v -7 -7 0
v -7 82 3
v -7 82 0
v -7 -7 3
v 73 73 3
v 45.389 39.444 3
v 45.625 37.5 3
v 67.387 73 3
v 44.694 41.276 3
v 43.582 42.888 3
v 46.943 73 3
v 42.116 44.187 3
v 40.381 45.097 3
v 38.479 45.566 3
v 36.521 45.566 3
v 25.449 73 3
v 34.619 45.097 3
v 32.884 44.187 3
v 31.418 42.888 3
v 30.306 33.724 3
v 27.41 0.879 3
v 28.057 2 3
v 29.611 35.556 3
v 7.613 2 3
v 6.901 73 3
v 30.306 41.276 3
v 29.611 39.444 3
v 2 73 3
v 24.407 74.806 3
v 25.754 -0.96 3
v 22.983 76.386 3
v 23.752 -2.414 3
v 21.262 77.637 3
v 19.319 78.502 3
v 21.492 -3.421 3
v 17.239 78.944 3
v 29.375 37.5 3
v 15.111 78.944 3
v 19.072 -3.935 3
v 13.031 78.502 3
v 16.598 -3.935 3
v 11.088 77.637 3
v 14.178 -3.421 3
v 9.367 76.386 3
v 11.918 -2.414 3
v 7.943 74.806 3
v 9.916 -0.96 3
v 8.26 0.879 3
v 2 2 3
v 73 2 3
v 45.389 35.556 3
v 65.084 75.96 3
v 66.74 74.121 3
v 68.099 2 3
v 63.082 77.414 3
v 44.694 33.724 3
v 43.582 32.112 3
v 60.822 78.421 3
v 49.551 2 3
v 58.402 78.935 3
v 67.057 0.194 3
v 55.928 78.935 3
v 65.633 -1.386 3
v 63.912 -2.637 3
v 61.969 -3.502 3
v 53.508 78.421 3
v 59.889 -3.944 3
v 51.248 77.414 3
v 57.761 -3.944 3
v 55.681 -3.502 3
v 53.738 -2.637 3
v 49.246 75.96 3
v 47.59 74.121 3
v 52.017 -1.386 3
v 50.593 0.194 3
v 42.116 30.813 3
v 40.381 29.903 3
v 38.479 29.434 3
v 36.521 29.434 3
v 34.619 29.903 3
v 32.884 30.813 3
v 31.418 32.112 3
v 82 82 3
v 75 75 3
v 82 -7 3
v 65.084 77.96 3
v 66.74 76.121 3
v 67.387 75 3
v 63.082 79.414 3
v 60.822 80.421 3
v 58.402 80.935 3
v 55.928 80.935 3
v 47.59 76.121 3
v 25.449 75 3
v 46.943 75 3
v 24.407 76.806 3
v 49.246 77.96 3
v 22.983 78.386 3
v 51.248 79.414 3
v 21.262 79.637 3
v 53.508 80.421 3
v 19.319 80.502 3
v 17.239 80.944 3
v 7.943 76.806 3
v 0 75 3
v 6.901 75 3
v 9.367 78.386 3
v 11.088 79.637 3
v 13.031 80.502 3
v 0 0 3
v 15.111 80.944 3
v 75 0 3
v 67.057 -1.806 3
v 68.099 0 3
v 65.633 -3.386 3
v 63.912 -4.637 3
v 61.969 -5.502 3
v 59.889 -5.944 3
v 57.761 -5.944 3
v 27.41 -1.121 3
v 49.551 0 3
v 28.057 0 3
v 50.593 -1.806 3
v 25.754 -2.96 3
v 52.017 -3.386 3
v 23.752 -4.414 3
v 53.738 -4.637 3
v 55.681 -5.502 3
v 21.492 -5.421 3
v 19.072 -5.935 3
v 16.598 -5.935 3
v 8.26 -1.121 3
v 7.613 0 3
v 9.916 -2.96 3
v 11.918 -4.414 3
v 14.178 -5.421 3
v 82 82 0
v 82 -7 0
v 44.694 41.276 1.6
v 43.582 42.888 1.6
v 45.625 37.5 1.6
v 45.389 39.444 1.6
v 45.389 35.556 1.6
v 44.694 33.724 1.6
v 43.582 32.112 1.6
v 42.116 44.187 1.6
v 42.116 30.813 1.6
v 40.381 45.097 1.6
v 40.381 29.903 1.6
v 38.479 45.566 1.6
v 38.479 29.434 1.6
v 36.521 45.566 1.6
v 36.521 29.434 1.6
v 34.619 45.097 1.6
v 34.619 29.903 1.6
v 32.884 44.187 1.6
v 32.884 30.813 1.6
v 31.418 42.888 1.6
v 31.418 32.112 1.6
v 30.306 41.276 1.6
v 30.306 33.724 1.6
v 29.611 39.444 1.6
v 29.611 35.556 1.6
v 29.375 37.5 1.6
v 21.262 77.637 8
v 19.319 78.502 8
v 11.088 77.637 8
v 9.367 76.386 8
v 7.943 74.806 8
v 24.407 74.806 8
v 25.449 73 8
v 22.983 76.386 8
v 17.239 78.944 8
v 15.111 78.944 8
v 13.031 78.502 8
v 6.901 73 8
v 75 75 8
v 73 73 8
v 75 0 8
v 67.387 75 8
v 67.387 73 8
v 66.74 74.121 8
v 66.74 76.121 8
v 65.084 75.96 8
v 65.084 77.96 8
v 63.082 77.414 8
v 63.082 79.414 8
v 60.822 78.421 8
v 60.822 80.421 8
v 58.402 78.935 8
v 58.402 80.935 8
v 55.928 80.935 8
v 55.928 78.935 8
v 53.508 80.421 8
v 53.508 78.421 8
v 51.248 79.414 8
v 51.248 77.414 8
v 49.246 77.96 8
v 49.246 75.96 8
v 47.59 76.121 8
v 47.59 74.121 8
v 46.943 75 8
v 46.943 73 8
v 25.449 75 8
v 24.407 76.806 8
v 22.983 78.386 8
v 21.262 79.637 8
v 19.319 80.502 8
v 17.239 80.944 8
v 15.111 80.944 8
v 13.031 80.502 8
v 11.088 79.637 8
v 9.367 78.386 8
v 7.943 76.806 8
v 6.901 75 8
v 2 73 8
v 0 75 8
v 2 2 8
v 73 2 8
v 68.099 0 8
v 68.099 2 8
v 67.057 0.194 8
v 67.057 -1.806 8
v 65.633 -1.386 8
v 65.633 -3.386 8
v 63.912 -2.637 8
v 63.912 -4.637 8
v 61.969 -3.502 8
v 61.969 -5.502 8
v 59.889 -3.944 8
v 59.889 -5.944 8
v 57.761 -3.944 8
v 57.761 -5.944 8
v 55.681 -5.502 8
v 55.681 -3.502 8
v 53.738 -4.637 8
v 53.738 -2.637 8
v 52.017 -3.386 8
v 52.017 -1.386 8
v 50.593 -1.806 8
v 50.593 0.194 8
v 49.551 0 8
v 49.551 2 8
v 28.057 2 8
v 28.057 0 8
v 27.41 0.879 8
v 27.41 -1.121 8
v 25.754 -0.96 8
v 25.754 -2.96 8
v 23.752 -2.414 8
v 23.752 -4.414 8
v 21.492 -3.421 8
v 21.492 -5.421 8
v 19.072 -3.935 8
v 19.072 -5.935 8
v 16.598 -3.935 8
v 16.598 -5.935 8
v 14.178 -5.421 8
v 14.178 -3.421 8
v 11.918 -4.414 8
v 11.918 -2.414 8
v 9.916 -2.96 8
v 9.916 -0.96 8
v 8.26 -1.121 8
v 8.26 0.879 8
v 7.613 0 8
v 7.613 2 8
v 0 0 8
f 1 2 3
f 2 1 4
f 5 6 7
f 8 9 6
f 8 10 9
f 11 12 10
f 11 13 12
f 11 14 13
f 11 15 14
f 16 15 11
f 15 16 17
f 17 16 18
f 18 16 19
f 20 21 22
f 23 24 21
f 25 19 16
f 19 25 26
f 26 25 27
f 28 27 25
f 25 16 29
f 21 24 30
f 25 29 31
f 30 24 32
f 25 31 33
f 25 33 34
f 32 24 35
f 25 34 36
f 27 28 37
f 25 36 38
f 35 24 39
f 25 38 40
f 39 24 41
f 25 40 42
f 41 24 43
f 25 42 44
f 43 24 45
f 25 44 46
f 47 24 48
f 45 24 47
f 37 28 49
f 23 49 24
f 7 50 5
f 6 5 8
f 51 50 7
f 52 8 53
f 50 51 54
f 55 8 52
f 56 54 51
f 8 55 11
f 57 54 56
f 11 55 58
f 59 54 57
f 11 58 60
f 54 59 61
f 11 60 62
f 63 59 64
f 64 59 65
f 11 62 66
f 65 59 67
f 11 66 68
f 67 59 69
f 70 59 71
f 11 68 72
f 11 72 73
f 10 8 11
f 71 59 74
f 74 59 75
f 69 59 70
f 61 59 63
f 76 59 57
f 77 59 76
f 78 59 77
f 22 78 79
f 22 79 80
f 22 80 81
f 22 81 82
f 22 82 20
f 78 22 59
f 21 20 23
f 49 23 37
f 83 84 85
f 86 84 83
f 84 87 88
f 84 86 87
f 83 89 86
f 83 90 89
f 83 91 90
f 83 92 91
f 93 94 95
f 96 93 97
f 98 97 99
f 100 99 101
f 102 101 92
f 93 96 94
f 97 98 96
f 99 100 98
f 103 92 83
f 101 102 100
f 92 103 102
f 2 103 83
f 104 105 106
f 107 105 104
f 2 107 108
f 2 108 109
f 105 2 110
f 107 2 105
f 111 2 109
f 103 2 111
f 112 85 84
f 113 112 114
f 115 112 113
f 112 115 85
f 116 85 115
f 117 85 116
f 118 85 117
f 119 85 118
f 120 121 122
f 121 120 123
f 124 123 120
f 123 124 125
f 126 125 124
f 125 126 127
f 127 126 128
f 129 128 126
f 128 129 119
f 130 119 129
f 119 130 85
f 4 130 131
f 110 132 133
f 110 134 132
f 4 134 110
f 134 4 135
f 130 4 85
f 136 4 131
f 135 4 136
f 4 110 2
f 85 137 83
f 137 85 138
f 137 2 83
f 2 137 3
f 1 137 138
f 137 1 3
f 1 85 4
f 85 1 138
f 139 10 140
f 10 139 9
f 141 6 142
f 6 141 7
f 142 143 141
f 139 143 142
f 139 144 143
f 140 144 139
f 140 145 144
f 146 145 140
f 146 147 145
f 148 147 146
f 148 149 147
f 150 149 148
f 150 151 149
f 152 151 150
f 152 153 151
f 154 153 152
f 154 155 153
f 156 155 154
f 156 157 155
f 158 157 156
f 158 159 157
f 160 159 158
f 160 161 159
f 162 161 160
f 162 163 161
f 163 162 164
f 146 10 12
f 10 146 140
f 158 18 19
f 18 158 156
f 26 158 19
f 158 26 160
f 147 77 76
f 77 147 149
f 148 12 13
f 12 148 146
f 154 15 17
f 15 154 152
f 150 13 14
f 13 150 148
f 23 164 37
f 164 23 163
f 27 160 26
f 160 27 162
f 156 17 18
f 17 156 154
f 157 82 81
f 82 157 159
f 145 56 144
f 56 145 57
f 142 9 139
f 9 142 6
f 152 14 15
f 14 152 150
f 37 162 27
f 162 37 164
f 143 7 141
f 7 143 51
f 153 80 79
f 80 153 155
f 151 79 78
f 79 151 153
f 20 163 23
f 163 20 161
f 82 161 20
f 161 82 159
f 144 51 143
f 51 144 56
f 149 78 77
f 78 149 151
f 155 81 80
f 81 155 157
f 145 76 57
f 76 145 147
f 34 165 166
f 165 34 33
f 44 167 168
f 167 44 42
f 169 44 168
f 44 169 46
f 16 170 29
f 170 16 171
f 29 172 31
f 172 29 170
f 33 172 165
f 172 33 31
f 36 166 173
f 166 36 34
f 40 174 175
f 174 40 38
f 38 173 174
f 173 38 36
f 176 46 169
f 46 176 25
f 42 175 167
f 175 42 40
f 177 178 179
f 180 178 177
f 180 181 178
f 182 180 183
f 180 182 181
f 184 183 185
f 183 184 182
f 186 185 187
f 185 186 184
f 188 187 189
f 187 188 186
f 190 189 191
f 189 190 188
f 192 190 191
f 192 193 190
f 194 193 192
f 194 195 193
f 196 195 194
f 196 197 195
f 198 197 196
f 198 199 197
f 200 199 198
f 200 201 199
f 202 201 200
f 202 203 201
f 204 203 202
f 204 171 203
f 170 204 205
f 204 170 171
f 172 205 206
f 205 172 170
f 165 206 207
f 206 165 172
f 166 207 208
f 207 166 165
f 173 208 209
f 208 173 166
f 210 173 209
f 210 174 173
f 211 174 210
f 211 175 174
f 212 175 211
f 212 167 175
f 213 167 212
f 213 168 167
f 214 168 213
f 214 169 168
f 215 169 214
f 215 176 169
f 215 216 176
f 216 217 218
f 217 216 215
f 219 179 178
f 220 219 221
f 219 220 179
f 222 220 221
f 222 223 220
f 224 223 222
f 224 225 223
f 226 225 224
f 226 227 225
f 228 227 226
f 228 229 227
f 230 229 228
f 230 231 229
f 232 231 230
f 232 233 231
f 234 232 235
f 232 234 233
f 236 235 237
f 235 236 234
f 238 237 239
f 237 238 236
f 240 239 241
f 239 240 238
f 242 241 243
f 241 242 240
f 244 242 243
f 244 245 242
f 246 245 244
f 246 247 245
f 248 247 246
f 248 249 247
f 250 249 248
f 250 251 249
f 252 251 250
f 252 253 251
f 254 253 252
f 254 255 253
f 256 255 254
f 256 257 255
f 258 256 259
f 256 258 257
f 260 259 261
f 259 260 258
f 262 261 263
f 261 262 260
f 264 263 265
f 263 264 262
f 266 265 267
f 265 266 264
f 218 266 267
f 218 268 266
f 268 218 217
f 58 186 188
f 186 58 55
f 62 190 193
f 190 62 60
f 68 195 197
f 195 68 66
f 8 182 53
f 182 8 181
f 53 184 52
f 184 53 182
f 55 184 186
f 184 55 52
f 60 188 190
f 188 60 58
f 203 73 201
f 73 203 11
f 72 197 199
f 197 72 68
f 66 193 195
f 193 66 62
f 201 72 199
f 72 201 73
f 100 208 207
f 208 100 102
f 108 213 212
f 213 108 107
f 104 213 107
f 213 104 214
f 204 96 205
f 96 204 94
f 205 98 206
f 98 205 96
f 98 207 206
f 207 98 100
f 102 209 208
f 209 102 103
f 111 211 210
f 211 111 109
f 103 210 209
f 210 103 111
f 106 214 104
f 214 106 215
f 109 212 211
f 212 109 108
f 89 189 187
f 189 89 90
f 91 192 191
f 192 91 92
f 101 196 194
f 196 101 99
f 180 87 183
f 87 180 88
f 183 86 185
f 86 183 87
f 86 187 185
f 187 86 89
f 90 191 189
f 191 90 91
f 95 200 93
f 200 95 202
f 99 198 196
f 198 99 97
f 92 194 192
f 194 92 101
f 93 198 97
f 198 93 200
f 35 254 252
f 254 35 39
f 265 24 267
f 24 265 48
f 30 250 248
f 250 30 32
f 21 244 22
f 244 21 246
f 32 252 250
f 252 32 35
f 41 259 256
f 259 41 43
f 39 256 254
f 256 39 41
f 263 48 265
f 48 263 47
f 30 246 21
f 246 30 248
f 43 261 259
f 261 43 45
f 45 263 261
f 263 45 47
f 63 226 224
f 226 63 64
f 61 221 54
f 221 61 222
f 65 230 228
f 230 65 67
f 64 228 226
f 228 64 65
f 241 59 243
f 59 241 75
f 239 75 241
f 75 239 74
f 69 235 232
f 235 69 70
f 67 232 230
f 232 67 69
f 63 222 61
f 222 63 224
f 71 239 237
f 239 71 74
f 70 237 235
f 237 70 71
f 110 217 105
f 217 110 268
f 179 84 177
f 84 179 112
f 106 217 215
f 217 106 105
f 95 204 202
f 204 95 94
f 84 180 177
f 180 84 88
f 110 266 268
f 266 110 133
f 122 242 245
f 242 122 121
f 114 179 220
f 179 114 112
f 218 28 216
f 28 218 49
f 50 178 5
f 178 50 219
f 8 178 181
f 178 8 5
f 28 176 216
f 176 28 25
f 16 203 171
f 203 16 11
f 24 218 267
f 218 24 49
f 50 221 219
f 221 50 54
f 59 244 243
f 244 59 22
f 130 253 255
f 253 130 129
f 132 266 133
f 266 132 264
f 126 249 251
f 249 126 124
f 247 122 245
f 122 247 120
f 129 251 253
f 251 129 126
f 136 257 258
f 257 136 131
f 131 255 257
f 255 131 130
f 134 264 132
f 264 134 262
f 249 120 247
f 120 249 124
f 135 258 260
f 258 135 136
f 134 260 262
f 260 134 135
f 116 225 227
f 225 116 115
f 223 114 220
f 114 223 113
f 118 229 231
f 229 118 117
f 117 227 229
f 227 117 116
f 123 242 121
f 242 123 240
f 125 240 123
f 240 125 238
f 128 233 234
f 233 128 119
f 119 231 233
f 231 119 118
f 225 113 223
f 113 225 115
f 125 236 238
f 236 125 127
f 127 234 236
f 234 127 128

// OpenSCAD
length = 70;
width = 70;
height = 3;
rimHeight = 5;
rimThickness = 2;
notchLength = 25;
//Based on washer size:
washerDiameter = 16.25;
washerHeight = 1.4;
rimPadding = 1;
totalHeight = height + rimHeight;

totalLength = length + rimThickness * 2 + rimPadding;
totalWidth = width + rimThickness * 2 + rimPadding;
extraLidForCircles = 7;

smallCircleDiameter = 19.05 + .8 + .5;
smallCircleOffset = 4;

mediumCircleDiameter = 23.17 + .5;
mediumCircleOffset = 4;

union()
{
    difference() {
        translate([-extraLidForCircles, -extraLidForCircles, 0])
            cube([totalLength + 2 * extraLidForCircles, totalWidth + 2 * extraLidForCircles, height]);
        translate([totalLength/2, totalWidth/2, height - washerHeight])
            cylinder(washerHeight, d=washerDiameter);
    }
    
    difference() {
        translate([0, 0, height])
            cube([totalLength, totalWidth, rimHeight]);
        translate([rimThickness, rimThickness, height])
            cube([length + rimPadding, width + rimPadding, rimHeight]);
        RightLengthCircles();
        LeftLengthCircles();
    }
    
    difference(){
        union()
        {
            translate([0, -rimThickness, 0])
                LeftLengthCircles();
            translate([0, rimThickness, 0])
                RightLengthCircles();
        }
        translate([0, 0, height])
            cube([totalLength, totalWidth, rimHeight]);
        RightLengthCircles();
        LeftLengthCircles();
    }
}


module LeftLengthCircles()
{
    spaceBetweenCircles = 3;
    translate([mediumCircleDiameter/2 + spaceBetweenCircles + rimThickness + rimPadding, mediumCircleDiameter/2 - mediumCircleOffset, height])
        cylinder(rimHeight, d=mediumCircleDiameter);
    
    translate([totalLength - (smallCircleDiameter/2 + spaceBetweenCircles + rimThickness + rimPadding), smallCircleDiameter/2 - smallCircleOffset, height])
        cylinder(rimHeight, d=smallCircleDiameter);
}

module RightLengthCircles()
{
    spaceBetweenCircles = 3;
    translate([smallCircleDiameter/2 + spaceBetweenCircles + rimThickness + rimPadding, totalWidth - (smallCircleDiameter/2 - smallCircleOffset), height])
        cylinder(rimHeight, d=smallCircleDiameter);
    
    translate([totalLength - (mediumCircleDiameter/2 + spaceBetweenCircles + rimThickness + rimPadding), totalWidth - (mediumCircleDiameter/2 - mediumCircleOffset), height])
        cylinder(rimHeight, d=mediumCircleDiameter);
}
